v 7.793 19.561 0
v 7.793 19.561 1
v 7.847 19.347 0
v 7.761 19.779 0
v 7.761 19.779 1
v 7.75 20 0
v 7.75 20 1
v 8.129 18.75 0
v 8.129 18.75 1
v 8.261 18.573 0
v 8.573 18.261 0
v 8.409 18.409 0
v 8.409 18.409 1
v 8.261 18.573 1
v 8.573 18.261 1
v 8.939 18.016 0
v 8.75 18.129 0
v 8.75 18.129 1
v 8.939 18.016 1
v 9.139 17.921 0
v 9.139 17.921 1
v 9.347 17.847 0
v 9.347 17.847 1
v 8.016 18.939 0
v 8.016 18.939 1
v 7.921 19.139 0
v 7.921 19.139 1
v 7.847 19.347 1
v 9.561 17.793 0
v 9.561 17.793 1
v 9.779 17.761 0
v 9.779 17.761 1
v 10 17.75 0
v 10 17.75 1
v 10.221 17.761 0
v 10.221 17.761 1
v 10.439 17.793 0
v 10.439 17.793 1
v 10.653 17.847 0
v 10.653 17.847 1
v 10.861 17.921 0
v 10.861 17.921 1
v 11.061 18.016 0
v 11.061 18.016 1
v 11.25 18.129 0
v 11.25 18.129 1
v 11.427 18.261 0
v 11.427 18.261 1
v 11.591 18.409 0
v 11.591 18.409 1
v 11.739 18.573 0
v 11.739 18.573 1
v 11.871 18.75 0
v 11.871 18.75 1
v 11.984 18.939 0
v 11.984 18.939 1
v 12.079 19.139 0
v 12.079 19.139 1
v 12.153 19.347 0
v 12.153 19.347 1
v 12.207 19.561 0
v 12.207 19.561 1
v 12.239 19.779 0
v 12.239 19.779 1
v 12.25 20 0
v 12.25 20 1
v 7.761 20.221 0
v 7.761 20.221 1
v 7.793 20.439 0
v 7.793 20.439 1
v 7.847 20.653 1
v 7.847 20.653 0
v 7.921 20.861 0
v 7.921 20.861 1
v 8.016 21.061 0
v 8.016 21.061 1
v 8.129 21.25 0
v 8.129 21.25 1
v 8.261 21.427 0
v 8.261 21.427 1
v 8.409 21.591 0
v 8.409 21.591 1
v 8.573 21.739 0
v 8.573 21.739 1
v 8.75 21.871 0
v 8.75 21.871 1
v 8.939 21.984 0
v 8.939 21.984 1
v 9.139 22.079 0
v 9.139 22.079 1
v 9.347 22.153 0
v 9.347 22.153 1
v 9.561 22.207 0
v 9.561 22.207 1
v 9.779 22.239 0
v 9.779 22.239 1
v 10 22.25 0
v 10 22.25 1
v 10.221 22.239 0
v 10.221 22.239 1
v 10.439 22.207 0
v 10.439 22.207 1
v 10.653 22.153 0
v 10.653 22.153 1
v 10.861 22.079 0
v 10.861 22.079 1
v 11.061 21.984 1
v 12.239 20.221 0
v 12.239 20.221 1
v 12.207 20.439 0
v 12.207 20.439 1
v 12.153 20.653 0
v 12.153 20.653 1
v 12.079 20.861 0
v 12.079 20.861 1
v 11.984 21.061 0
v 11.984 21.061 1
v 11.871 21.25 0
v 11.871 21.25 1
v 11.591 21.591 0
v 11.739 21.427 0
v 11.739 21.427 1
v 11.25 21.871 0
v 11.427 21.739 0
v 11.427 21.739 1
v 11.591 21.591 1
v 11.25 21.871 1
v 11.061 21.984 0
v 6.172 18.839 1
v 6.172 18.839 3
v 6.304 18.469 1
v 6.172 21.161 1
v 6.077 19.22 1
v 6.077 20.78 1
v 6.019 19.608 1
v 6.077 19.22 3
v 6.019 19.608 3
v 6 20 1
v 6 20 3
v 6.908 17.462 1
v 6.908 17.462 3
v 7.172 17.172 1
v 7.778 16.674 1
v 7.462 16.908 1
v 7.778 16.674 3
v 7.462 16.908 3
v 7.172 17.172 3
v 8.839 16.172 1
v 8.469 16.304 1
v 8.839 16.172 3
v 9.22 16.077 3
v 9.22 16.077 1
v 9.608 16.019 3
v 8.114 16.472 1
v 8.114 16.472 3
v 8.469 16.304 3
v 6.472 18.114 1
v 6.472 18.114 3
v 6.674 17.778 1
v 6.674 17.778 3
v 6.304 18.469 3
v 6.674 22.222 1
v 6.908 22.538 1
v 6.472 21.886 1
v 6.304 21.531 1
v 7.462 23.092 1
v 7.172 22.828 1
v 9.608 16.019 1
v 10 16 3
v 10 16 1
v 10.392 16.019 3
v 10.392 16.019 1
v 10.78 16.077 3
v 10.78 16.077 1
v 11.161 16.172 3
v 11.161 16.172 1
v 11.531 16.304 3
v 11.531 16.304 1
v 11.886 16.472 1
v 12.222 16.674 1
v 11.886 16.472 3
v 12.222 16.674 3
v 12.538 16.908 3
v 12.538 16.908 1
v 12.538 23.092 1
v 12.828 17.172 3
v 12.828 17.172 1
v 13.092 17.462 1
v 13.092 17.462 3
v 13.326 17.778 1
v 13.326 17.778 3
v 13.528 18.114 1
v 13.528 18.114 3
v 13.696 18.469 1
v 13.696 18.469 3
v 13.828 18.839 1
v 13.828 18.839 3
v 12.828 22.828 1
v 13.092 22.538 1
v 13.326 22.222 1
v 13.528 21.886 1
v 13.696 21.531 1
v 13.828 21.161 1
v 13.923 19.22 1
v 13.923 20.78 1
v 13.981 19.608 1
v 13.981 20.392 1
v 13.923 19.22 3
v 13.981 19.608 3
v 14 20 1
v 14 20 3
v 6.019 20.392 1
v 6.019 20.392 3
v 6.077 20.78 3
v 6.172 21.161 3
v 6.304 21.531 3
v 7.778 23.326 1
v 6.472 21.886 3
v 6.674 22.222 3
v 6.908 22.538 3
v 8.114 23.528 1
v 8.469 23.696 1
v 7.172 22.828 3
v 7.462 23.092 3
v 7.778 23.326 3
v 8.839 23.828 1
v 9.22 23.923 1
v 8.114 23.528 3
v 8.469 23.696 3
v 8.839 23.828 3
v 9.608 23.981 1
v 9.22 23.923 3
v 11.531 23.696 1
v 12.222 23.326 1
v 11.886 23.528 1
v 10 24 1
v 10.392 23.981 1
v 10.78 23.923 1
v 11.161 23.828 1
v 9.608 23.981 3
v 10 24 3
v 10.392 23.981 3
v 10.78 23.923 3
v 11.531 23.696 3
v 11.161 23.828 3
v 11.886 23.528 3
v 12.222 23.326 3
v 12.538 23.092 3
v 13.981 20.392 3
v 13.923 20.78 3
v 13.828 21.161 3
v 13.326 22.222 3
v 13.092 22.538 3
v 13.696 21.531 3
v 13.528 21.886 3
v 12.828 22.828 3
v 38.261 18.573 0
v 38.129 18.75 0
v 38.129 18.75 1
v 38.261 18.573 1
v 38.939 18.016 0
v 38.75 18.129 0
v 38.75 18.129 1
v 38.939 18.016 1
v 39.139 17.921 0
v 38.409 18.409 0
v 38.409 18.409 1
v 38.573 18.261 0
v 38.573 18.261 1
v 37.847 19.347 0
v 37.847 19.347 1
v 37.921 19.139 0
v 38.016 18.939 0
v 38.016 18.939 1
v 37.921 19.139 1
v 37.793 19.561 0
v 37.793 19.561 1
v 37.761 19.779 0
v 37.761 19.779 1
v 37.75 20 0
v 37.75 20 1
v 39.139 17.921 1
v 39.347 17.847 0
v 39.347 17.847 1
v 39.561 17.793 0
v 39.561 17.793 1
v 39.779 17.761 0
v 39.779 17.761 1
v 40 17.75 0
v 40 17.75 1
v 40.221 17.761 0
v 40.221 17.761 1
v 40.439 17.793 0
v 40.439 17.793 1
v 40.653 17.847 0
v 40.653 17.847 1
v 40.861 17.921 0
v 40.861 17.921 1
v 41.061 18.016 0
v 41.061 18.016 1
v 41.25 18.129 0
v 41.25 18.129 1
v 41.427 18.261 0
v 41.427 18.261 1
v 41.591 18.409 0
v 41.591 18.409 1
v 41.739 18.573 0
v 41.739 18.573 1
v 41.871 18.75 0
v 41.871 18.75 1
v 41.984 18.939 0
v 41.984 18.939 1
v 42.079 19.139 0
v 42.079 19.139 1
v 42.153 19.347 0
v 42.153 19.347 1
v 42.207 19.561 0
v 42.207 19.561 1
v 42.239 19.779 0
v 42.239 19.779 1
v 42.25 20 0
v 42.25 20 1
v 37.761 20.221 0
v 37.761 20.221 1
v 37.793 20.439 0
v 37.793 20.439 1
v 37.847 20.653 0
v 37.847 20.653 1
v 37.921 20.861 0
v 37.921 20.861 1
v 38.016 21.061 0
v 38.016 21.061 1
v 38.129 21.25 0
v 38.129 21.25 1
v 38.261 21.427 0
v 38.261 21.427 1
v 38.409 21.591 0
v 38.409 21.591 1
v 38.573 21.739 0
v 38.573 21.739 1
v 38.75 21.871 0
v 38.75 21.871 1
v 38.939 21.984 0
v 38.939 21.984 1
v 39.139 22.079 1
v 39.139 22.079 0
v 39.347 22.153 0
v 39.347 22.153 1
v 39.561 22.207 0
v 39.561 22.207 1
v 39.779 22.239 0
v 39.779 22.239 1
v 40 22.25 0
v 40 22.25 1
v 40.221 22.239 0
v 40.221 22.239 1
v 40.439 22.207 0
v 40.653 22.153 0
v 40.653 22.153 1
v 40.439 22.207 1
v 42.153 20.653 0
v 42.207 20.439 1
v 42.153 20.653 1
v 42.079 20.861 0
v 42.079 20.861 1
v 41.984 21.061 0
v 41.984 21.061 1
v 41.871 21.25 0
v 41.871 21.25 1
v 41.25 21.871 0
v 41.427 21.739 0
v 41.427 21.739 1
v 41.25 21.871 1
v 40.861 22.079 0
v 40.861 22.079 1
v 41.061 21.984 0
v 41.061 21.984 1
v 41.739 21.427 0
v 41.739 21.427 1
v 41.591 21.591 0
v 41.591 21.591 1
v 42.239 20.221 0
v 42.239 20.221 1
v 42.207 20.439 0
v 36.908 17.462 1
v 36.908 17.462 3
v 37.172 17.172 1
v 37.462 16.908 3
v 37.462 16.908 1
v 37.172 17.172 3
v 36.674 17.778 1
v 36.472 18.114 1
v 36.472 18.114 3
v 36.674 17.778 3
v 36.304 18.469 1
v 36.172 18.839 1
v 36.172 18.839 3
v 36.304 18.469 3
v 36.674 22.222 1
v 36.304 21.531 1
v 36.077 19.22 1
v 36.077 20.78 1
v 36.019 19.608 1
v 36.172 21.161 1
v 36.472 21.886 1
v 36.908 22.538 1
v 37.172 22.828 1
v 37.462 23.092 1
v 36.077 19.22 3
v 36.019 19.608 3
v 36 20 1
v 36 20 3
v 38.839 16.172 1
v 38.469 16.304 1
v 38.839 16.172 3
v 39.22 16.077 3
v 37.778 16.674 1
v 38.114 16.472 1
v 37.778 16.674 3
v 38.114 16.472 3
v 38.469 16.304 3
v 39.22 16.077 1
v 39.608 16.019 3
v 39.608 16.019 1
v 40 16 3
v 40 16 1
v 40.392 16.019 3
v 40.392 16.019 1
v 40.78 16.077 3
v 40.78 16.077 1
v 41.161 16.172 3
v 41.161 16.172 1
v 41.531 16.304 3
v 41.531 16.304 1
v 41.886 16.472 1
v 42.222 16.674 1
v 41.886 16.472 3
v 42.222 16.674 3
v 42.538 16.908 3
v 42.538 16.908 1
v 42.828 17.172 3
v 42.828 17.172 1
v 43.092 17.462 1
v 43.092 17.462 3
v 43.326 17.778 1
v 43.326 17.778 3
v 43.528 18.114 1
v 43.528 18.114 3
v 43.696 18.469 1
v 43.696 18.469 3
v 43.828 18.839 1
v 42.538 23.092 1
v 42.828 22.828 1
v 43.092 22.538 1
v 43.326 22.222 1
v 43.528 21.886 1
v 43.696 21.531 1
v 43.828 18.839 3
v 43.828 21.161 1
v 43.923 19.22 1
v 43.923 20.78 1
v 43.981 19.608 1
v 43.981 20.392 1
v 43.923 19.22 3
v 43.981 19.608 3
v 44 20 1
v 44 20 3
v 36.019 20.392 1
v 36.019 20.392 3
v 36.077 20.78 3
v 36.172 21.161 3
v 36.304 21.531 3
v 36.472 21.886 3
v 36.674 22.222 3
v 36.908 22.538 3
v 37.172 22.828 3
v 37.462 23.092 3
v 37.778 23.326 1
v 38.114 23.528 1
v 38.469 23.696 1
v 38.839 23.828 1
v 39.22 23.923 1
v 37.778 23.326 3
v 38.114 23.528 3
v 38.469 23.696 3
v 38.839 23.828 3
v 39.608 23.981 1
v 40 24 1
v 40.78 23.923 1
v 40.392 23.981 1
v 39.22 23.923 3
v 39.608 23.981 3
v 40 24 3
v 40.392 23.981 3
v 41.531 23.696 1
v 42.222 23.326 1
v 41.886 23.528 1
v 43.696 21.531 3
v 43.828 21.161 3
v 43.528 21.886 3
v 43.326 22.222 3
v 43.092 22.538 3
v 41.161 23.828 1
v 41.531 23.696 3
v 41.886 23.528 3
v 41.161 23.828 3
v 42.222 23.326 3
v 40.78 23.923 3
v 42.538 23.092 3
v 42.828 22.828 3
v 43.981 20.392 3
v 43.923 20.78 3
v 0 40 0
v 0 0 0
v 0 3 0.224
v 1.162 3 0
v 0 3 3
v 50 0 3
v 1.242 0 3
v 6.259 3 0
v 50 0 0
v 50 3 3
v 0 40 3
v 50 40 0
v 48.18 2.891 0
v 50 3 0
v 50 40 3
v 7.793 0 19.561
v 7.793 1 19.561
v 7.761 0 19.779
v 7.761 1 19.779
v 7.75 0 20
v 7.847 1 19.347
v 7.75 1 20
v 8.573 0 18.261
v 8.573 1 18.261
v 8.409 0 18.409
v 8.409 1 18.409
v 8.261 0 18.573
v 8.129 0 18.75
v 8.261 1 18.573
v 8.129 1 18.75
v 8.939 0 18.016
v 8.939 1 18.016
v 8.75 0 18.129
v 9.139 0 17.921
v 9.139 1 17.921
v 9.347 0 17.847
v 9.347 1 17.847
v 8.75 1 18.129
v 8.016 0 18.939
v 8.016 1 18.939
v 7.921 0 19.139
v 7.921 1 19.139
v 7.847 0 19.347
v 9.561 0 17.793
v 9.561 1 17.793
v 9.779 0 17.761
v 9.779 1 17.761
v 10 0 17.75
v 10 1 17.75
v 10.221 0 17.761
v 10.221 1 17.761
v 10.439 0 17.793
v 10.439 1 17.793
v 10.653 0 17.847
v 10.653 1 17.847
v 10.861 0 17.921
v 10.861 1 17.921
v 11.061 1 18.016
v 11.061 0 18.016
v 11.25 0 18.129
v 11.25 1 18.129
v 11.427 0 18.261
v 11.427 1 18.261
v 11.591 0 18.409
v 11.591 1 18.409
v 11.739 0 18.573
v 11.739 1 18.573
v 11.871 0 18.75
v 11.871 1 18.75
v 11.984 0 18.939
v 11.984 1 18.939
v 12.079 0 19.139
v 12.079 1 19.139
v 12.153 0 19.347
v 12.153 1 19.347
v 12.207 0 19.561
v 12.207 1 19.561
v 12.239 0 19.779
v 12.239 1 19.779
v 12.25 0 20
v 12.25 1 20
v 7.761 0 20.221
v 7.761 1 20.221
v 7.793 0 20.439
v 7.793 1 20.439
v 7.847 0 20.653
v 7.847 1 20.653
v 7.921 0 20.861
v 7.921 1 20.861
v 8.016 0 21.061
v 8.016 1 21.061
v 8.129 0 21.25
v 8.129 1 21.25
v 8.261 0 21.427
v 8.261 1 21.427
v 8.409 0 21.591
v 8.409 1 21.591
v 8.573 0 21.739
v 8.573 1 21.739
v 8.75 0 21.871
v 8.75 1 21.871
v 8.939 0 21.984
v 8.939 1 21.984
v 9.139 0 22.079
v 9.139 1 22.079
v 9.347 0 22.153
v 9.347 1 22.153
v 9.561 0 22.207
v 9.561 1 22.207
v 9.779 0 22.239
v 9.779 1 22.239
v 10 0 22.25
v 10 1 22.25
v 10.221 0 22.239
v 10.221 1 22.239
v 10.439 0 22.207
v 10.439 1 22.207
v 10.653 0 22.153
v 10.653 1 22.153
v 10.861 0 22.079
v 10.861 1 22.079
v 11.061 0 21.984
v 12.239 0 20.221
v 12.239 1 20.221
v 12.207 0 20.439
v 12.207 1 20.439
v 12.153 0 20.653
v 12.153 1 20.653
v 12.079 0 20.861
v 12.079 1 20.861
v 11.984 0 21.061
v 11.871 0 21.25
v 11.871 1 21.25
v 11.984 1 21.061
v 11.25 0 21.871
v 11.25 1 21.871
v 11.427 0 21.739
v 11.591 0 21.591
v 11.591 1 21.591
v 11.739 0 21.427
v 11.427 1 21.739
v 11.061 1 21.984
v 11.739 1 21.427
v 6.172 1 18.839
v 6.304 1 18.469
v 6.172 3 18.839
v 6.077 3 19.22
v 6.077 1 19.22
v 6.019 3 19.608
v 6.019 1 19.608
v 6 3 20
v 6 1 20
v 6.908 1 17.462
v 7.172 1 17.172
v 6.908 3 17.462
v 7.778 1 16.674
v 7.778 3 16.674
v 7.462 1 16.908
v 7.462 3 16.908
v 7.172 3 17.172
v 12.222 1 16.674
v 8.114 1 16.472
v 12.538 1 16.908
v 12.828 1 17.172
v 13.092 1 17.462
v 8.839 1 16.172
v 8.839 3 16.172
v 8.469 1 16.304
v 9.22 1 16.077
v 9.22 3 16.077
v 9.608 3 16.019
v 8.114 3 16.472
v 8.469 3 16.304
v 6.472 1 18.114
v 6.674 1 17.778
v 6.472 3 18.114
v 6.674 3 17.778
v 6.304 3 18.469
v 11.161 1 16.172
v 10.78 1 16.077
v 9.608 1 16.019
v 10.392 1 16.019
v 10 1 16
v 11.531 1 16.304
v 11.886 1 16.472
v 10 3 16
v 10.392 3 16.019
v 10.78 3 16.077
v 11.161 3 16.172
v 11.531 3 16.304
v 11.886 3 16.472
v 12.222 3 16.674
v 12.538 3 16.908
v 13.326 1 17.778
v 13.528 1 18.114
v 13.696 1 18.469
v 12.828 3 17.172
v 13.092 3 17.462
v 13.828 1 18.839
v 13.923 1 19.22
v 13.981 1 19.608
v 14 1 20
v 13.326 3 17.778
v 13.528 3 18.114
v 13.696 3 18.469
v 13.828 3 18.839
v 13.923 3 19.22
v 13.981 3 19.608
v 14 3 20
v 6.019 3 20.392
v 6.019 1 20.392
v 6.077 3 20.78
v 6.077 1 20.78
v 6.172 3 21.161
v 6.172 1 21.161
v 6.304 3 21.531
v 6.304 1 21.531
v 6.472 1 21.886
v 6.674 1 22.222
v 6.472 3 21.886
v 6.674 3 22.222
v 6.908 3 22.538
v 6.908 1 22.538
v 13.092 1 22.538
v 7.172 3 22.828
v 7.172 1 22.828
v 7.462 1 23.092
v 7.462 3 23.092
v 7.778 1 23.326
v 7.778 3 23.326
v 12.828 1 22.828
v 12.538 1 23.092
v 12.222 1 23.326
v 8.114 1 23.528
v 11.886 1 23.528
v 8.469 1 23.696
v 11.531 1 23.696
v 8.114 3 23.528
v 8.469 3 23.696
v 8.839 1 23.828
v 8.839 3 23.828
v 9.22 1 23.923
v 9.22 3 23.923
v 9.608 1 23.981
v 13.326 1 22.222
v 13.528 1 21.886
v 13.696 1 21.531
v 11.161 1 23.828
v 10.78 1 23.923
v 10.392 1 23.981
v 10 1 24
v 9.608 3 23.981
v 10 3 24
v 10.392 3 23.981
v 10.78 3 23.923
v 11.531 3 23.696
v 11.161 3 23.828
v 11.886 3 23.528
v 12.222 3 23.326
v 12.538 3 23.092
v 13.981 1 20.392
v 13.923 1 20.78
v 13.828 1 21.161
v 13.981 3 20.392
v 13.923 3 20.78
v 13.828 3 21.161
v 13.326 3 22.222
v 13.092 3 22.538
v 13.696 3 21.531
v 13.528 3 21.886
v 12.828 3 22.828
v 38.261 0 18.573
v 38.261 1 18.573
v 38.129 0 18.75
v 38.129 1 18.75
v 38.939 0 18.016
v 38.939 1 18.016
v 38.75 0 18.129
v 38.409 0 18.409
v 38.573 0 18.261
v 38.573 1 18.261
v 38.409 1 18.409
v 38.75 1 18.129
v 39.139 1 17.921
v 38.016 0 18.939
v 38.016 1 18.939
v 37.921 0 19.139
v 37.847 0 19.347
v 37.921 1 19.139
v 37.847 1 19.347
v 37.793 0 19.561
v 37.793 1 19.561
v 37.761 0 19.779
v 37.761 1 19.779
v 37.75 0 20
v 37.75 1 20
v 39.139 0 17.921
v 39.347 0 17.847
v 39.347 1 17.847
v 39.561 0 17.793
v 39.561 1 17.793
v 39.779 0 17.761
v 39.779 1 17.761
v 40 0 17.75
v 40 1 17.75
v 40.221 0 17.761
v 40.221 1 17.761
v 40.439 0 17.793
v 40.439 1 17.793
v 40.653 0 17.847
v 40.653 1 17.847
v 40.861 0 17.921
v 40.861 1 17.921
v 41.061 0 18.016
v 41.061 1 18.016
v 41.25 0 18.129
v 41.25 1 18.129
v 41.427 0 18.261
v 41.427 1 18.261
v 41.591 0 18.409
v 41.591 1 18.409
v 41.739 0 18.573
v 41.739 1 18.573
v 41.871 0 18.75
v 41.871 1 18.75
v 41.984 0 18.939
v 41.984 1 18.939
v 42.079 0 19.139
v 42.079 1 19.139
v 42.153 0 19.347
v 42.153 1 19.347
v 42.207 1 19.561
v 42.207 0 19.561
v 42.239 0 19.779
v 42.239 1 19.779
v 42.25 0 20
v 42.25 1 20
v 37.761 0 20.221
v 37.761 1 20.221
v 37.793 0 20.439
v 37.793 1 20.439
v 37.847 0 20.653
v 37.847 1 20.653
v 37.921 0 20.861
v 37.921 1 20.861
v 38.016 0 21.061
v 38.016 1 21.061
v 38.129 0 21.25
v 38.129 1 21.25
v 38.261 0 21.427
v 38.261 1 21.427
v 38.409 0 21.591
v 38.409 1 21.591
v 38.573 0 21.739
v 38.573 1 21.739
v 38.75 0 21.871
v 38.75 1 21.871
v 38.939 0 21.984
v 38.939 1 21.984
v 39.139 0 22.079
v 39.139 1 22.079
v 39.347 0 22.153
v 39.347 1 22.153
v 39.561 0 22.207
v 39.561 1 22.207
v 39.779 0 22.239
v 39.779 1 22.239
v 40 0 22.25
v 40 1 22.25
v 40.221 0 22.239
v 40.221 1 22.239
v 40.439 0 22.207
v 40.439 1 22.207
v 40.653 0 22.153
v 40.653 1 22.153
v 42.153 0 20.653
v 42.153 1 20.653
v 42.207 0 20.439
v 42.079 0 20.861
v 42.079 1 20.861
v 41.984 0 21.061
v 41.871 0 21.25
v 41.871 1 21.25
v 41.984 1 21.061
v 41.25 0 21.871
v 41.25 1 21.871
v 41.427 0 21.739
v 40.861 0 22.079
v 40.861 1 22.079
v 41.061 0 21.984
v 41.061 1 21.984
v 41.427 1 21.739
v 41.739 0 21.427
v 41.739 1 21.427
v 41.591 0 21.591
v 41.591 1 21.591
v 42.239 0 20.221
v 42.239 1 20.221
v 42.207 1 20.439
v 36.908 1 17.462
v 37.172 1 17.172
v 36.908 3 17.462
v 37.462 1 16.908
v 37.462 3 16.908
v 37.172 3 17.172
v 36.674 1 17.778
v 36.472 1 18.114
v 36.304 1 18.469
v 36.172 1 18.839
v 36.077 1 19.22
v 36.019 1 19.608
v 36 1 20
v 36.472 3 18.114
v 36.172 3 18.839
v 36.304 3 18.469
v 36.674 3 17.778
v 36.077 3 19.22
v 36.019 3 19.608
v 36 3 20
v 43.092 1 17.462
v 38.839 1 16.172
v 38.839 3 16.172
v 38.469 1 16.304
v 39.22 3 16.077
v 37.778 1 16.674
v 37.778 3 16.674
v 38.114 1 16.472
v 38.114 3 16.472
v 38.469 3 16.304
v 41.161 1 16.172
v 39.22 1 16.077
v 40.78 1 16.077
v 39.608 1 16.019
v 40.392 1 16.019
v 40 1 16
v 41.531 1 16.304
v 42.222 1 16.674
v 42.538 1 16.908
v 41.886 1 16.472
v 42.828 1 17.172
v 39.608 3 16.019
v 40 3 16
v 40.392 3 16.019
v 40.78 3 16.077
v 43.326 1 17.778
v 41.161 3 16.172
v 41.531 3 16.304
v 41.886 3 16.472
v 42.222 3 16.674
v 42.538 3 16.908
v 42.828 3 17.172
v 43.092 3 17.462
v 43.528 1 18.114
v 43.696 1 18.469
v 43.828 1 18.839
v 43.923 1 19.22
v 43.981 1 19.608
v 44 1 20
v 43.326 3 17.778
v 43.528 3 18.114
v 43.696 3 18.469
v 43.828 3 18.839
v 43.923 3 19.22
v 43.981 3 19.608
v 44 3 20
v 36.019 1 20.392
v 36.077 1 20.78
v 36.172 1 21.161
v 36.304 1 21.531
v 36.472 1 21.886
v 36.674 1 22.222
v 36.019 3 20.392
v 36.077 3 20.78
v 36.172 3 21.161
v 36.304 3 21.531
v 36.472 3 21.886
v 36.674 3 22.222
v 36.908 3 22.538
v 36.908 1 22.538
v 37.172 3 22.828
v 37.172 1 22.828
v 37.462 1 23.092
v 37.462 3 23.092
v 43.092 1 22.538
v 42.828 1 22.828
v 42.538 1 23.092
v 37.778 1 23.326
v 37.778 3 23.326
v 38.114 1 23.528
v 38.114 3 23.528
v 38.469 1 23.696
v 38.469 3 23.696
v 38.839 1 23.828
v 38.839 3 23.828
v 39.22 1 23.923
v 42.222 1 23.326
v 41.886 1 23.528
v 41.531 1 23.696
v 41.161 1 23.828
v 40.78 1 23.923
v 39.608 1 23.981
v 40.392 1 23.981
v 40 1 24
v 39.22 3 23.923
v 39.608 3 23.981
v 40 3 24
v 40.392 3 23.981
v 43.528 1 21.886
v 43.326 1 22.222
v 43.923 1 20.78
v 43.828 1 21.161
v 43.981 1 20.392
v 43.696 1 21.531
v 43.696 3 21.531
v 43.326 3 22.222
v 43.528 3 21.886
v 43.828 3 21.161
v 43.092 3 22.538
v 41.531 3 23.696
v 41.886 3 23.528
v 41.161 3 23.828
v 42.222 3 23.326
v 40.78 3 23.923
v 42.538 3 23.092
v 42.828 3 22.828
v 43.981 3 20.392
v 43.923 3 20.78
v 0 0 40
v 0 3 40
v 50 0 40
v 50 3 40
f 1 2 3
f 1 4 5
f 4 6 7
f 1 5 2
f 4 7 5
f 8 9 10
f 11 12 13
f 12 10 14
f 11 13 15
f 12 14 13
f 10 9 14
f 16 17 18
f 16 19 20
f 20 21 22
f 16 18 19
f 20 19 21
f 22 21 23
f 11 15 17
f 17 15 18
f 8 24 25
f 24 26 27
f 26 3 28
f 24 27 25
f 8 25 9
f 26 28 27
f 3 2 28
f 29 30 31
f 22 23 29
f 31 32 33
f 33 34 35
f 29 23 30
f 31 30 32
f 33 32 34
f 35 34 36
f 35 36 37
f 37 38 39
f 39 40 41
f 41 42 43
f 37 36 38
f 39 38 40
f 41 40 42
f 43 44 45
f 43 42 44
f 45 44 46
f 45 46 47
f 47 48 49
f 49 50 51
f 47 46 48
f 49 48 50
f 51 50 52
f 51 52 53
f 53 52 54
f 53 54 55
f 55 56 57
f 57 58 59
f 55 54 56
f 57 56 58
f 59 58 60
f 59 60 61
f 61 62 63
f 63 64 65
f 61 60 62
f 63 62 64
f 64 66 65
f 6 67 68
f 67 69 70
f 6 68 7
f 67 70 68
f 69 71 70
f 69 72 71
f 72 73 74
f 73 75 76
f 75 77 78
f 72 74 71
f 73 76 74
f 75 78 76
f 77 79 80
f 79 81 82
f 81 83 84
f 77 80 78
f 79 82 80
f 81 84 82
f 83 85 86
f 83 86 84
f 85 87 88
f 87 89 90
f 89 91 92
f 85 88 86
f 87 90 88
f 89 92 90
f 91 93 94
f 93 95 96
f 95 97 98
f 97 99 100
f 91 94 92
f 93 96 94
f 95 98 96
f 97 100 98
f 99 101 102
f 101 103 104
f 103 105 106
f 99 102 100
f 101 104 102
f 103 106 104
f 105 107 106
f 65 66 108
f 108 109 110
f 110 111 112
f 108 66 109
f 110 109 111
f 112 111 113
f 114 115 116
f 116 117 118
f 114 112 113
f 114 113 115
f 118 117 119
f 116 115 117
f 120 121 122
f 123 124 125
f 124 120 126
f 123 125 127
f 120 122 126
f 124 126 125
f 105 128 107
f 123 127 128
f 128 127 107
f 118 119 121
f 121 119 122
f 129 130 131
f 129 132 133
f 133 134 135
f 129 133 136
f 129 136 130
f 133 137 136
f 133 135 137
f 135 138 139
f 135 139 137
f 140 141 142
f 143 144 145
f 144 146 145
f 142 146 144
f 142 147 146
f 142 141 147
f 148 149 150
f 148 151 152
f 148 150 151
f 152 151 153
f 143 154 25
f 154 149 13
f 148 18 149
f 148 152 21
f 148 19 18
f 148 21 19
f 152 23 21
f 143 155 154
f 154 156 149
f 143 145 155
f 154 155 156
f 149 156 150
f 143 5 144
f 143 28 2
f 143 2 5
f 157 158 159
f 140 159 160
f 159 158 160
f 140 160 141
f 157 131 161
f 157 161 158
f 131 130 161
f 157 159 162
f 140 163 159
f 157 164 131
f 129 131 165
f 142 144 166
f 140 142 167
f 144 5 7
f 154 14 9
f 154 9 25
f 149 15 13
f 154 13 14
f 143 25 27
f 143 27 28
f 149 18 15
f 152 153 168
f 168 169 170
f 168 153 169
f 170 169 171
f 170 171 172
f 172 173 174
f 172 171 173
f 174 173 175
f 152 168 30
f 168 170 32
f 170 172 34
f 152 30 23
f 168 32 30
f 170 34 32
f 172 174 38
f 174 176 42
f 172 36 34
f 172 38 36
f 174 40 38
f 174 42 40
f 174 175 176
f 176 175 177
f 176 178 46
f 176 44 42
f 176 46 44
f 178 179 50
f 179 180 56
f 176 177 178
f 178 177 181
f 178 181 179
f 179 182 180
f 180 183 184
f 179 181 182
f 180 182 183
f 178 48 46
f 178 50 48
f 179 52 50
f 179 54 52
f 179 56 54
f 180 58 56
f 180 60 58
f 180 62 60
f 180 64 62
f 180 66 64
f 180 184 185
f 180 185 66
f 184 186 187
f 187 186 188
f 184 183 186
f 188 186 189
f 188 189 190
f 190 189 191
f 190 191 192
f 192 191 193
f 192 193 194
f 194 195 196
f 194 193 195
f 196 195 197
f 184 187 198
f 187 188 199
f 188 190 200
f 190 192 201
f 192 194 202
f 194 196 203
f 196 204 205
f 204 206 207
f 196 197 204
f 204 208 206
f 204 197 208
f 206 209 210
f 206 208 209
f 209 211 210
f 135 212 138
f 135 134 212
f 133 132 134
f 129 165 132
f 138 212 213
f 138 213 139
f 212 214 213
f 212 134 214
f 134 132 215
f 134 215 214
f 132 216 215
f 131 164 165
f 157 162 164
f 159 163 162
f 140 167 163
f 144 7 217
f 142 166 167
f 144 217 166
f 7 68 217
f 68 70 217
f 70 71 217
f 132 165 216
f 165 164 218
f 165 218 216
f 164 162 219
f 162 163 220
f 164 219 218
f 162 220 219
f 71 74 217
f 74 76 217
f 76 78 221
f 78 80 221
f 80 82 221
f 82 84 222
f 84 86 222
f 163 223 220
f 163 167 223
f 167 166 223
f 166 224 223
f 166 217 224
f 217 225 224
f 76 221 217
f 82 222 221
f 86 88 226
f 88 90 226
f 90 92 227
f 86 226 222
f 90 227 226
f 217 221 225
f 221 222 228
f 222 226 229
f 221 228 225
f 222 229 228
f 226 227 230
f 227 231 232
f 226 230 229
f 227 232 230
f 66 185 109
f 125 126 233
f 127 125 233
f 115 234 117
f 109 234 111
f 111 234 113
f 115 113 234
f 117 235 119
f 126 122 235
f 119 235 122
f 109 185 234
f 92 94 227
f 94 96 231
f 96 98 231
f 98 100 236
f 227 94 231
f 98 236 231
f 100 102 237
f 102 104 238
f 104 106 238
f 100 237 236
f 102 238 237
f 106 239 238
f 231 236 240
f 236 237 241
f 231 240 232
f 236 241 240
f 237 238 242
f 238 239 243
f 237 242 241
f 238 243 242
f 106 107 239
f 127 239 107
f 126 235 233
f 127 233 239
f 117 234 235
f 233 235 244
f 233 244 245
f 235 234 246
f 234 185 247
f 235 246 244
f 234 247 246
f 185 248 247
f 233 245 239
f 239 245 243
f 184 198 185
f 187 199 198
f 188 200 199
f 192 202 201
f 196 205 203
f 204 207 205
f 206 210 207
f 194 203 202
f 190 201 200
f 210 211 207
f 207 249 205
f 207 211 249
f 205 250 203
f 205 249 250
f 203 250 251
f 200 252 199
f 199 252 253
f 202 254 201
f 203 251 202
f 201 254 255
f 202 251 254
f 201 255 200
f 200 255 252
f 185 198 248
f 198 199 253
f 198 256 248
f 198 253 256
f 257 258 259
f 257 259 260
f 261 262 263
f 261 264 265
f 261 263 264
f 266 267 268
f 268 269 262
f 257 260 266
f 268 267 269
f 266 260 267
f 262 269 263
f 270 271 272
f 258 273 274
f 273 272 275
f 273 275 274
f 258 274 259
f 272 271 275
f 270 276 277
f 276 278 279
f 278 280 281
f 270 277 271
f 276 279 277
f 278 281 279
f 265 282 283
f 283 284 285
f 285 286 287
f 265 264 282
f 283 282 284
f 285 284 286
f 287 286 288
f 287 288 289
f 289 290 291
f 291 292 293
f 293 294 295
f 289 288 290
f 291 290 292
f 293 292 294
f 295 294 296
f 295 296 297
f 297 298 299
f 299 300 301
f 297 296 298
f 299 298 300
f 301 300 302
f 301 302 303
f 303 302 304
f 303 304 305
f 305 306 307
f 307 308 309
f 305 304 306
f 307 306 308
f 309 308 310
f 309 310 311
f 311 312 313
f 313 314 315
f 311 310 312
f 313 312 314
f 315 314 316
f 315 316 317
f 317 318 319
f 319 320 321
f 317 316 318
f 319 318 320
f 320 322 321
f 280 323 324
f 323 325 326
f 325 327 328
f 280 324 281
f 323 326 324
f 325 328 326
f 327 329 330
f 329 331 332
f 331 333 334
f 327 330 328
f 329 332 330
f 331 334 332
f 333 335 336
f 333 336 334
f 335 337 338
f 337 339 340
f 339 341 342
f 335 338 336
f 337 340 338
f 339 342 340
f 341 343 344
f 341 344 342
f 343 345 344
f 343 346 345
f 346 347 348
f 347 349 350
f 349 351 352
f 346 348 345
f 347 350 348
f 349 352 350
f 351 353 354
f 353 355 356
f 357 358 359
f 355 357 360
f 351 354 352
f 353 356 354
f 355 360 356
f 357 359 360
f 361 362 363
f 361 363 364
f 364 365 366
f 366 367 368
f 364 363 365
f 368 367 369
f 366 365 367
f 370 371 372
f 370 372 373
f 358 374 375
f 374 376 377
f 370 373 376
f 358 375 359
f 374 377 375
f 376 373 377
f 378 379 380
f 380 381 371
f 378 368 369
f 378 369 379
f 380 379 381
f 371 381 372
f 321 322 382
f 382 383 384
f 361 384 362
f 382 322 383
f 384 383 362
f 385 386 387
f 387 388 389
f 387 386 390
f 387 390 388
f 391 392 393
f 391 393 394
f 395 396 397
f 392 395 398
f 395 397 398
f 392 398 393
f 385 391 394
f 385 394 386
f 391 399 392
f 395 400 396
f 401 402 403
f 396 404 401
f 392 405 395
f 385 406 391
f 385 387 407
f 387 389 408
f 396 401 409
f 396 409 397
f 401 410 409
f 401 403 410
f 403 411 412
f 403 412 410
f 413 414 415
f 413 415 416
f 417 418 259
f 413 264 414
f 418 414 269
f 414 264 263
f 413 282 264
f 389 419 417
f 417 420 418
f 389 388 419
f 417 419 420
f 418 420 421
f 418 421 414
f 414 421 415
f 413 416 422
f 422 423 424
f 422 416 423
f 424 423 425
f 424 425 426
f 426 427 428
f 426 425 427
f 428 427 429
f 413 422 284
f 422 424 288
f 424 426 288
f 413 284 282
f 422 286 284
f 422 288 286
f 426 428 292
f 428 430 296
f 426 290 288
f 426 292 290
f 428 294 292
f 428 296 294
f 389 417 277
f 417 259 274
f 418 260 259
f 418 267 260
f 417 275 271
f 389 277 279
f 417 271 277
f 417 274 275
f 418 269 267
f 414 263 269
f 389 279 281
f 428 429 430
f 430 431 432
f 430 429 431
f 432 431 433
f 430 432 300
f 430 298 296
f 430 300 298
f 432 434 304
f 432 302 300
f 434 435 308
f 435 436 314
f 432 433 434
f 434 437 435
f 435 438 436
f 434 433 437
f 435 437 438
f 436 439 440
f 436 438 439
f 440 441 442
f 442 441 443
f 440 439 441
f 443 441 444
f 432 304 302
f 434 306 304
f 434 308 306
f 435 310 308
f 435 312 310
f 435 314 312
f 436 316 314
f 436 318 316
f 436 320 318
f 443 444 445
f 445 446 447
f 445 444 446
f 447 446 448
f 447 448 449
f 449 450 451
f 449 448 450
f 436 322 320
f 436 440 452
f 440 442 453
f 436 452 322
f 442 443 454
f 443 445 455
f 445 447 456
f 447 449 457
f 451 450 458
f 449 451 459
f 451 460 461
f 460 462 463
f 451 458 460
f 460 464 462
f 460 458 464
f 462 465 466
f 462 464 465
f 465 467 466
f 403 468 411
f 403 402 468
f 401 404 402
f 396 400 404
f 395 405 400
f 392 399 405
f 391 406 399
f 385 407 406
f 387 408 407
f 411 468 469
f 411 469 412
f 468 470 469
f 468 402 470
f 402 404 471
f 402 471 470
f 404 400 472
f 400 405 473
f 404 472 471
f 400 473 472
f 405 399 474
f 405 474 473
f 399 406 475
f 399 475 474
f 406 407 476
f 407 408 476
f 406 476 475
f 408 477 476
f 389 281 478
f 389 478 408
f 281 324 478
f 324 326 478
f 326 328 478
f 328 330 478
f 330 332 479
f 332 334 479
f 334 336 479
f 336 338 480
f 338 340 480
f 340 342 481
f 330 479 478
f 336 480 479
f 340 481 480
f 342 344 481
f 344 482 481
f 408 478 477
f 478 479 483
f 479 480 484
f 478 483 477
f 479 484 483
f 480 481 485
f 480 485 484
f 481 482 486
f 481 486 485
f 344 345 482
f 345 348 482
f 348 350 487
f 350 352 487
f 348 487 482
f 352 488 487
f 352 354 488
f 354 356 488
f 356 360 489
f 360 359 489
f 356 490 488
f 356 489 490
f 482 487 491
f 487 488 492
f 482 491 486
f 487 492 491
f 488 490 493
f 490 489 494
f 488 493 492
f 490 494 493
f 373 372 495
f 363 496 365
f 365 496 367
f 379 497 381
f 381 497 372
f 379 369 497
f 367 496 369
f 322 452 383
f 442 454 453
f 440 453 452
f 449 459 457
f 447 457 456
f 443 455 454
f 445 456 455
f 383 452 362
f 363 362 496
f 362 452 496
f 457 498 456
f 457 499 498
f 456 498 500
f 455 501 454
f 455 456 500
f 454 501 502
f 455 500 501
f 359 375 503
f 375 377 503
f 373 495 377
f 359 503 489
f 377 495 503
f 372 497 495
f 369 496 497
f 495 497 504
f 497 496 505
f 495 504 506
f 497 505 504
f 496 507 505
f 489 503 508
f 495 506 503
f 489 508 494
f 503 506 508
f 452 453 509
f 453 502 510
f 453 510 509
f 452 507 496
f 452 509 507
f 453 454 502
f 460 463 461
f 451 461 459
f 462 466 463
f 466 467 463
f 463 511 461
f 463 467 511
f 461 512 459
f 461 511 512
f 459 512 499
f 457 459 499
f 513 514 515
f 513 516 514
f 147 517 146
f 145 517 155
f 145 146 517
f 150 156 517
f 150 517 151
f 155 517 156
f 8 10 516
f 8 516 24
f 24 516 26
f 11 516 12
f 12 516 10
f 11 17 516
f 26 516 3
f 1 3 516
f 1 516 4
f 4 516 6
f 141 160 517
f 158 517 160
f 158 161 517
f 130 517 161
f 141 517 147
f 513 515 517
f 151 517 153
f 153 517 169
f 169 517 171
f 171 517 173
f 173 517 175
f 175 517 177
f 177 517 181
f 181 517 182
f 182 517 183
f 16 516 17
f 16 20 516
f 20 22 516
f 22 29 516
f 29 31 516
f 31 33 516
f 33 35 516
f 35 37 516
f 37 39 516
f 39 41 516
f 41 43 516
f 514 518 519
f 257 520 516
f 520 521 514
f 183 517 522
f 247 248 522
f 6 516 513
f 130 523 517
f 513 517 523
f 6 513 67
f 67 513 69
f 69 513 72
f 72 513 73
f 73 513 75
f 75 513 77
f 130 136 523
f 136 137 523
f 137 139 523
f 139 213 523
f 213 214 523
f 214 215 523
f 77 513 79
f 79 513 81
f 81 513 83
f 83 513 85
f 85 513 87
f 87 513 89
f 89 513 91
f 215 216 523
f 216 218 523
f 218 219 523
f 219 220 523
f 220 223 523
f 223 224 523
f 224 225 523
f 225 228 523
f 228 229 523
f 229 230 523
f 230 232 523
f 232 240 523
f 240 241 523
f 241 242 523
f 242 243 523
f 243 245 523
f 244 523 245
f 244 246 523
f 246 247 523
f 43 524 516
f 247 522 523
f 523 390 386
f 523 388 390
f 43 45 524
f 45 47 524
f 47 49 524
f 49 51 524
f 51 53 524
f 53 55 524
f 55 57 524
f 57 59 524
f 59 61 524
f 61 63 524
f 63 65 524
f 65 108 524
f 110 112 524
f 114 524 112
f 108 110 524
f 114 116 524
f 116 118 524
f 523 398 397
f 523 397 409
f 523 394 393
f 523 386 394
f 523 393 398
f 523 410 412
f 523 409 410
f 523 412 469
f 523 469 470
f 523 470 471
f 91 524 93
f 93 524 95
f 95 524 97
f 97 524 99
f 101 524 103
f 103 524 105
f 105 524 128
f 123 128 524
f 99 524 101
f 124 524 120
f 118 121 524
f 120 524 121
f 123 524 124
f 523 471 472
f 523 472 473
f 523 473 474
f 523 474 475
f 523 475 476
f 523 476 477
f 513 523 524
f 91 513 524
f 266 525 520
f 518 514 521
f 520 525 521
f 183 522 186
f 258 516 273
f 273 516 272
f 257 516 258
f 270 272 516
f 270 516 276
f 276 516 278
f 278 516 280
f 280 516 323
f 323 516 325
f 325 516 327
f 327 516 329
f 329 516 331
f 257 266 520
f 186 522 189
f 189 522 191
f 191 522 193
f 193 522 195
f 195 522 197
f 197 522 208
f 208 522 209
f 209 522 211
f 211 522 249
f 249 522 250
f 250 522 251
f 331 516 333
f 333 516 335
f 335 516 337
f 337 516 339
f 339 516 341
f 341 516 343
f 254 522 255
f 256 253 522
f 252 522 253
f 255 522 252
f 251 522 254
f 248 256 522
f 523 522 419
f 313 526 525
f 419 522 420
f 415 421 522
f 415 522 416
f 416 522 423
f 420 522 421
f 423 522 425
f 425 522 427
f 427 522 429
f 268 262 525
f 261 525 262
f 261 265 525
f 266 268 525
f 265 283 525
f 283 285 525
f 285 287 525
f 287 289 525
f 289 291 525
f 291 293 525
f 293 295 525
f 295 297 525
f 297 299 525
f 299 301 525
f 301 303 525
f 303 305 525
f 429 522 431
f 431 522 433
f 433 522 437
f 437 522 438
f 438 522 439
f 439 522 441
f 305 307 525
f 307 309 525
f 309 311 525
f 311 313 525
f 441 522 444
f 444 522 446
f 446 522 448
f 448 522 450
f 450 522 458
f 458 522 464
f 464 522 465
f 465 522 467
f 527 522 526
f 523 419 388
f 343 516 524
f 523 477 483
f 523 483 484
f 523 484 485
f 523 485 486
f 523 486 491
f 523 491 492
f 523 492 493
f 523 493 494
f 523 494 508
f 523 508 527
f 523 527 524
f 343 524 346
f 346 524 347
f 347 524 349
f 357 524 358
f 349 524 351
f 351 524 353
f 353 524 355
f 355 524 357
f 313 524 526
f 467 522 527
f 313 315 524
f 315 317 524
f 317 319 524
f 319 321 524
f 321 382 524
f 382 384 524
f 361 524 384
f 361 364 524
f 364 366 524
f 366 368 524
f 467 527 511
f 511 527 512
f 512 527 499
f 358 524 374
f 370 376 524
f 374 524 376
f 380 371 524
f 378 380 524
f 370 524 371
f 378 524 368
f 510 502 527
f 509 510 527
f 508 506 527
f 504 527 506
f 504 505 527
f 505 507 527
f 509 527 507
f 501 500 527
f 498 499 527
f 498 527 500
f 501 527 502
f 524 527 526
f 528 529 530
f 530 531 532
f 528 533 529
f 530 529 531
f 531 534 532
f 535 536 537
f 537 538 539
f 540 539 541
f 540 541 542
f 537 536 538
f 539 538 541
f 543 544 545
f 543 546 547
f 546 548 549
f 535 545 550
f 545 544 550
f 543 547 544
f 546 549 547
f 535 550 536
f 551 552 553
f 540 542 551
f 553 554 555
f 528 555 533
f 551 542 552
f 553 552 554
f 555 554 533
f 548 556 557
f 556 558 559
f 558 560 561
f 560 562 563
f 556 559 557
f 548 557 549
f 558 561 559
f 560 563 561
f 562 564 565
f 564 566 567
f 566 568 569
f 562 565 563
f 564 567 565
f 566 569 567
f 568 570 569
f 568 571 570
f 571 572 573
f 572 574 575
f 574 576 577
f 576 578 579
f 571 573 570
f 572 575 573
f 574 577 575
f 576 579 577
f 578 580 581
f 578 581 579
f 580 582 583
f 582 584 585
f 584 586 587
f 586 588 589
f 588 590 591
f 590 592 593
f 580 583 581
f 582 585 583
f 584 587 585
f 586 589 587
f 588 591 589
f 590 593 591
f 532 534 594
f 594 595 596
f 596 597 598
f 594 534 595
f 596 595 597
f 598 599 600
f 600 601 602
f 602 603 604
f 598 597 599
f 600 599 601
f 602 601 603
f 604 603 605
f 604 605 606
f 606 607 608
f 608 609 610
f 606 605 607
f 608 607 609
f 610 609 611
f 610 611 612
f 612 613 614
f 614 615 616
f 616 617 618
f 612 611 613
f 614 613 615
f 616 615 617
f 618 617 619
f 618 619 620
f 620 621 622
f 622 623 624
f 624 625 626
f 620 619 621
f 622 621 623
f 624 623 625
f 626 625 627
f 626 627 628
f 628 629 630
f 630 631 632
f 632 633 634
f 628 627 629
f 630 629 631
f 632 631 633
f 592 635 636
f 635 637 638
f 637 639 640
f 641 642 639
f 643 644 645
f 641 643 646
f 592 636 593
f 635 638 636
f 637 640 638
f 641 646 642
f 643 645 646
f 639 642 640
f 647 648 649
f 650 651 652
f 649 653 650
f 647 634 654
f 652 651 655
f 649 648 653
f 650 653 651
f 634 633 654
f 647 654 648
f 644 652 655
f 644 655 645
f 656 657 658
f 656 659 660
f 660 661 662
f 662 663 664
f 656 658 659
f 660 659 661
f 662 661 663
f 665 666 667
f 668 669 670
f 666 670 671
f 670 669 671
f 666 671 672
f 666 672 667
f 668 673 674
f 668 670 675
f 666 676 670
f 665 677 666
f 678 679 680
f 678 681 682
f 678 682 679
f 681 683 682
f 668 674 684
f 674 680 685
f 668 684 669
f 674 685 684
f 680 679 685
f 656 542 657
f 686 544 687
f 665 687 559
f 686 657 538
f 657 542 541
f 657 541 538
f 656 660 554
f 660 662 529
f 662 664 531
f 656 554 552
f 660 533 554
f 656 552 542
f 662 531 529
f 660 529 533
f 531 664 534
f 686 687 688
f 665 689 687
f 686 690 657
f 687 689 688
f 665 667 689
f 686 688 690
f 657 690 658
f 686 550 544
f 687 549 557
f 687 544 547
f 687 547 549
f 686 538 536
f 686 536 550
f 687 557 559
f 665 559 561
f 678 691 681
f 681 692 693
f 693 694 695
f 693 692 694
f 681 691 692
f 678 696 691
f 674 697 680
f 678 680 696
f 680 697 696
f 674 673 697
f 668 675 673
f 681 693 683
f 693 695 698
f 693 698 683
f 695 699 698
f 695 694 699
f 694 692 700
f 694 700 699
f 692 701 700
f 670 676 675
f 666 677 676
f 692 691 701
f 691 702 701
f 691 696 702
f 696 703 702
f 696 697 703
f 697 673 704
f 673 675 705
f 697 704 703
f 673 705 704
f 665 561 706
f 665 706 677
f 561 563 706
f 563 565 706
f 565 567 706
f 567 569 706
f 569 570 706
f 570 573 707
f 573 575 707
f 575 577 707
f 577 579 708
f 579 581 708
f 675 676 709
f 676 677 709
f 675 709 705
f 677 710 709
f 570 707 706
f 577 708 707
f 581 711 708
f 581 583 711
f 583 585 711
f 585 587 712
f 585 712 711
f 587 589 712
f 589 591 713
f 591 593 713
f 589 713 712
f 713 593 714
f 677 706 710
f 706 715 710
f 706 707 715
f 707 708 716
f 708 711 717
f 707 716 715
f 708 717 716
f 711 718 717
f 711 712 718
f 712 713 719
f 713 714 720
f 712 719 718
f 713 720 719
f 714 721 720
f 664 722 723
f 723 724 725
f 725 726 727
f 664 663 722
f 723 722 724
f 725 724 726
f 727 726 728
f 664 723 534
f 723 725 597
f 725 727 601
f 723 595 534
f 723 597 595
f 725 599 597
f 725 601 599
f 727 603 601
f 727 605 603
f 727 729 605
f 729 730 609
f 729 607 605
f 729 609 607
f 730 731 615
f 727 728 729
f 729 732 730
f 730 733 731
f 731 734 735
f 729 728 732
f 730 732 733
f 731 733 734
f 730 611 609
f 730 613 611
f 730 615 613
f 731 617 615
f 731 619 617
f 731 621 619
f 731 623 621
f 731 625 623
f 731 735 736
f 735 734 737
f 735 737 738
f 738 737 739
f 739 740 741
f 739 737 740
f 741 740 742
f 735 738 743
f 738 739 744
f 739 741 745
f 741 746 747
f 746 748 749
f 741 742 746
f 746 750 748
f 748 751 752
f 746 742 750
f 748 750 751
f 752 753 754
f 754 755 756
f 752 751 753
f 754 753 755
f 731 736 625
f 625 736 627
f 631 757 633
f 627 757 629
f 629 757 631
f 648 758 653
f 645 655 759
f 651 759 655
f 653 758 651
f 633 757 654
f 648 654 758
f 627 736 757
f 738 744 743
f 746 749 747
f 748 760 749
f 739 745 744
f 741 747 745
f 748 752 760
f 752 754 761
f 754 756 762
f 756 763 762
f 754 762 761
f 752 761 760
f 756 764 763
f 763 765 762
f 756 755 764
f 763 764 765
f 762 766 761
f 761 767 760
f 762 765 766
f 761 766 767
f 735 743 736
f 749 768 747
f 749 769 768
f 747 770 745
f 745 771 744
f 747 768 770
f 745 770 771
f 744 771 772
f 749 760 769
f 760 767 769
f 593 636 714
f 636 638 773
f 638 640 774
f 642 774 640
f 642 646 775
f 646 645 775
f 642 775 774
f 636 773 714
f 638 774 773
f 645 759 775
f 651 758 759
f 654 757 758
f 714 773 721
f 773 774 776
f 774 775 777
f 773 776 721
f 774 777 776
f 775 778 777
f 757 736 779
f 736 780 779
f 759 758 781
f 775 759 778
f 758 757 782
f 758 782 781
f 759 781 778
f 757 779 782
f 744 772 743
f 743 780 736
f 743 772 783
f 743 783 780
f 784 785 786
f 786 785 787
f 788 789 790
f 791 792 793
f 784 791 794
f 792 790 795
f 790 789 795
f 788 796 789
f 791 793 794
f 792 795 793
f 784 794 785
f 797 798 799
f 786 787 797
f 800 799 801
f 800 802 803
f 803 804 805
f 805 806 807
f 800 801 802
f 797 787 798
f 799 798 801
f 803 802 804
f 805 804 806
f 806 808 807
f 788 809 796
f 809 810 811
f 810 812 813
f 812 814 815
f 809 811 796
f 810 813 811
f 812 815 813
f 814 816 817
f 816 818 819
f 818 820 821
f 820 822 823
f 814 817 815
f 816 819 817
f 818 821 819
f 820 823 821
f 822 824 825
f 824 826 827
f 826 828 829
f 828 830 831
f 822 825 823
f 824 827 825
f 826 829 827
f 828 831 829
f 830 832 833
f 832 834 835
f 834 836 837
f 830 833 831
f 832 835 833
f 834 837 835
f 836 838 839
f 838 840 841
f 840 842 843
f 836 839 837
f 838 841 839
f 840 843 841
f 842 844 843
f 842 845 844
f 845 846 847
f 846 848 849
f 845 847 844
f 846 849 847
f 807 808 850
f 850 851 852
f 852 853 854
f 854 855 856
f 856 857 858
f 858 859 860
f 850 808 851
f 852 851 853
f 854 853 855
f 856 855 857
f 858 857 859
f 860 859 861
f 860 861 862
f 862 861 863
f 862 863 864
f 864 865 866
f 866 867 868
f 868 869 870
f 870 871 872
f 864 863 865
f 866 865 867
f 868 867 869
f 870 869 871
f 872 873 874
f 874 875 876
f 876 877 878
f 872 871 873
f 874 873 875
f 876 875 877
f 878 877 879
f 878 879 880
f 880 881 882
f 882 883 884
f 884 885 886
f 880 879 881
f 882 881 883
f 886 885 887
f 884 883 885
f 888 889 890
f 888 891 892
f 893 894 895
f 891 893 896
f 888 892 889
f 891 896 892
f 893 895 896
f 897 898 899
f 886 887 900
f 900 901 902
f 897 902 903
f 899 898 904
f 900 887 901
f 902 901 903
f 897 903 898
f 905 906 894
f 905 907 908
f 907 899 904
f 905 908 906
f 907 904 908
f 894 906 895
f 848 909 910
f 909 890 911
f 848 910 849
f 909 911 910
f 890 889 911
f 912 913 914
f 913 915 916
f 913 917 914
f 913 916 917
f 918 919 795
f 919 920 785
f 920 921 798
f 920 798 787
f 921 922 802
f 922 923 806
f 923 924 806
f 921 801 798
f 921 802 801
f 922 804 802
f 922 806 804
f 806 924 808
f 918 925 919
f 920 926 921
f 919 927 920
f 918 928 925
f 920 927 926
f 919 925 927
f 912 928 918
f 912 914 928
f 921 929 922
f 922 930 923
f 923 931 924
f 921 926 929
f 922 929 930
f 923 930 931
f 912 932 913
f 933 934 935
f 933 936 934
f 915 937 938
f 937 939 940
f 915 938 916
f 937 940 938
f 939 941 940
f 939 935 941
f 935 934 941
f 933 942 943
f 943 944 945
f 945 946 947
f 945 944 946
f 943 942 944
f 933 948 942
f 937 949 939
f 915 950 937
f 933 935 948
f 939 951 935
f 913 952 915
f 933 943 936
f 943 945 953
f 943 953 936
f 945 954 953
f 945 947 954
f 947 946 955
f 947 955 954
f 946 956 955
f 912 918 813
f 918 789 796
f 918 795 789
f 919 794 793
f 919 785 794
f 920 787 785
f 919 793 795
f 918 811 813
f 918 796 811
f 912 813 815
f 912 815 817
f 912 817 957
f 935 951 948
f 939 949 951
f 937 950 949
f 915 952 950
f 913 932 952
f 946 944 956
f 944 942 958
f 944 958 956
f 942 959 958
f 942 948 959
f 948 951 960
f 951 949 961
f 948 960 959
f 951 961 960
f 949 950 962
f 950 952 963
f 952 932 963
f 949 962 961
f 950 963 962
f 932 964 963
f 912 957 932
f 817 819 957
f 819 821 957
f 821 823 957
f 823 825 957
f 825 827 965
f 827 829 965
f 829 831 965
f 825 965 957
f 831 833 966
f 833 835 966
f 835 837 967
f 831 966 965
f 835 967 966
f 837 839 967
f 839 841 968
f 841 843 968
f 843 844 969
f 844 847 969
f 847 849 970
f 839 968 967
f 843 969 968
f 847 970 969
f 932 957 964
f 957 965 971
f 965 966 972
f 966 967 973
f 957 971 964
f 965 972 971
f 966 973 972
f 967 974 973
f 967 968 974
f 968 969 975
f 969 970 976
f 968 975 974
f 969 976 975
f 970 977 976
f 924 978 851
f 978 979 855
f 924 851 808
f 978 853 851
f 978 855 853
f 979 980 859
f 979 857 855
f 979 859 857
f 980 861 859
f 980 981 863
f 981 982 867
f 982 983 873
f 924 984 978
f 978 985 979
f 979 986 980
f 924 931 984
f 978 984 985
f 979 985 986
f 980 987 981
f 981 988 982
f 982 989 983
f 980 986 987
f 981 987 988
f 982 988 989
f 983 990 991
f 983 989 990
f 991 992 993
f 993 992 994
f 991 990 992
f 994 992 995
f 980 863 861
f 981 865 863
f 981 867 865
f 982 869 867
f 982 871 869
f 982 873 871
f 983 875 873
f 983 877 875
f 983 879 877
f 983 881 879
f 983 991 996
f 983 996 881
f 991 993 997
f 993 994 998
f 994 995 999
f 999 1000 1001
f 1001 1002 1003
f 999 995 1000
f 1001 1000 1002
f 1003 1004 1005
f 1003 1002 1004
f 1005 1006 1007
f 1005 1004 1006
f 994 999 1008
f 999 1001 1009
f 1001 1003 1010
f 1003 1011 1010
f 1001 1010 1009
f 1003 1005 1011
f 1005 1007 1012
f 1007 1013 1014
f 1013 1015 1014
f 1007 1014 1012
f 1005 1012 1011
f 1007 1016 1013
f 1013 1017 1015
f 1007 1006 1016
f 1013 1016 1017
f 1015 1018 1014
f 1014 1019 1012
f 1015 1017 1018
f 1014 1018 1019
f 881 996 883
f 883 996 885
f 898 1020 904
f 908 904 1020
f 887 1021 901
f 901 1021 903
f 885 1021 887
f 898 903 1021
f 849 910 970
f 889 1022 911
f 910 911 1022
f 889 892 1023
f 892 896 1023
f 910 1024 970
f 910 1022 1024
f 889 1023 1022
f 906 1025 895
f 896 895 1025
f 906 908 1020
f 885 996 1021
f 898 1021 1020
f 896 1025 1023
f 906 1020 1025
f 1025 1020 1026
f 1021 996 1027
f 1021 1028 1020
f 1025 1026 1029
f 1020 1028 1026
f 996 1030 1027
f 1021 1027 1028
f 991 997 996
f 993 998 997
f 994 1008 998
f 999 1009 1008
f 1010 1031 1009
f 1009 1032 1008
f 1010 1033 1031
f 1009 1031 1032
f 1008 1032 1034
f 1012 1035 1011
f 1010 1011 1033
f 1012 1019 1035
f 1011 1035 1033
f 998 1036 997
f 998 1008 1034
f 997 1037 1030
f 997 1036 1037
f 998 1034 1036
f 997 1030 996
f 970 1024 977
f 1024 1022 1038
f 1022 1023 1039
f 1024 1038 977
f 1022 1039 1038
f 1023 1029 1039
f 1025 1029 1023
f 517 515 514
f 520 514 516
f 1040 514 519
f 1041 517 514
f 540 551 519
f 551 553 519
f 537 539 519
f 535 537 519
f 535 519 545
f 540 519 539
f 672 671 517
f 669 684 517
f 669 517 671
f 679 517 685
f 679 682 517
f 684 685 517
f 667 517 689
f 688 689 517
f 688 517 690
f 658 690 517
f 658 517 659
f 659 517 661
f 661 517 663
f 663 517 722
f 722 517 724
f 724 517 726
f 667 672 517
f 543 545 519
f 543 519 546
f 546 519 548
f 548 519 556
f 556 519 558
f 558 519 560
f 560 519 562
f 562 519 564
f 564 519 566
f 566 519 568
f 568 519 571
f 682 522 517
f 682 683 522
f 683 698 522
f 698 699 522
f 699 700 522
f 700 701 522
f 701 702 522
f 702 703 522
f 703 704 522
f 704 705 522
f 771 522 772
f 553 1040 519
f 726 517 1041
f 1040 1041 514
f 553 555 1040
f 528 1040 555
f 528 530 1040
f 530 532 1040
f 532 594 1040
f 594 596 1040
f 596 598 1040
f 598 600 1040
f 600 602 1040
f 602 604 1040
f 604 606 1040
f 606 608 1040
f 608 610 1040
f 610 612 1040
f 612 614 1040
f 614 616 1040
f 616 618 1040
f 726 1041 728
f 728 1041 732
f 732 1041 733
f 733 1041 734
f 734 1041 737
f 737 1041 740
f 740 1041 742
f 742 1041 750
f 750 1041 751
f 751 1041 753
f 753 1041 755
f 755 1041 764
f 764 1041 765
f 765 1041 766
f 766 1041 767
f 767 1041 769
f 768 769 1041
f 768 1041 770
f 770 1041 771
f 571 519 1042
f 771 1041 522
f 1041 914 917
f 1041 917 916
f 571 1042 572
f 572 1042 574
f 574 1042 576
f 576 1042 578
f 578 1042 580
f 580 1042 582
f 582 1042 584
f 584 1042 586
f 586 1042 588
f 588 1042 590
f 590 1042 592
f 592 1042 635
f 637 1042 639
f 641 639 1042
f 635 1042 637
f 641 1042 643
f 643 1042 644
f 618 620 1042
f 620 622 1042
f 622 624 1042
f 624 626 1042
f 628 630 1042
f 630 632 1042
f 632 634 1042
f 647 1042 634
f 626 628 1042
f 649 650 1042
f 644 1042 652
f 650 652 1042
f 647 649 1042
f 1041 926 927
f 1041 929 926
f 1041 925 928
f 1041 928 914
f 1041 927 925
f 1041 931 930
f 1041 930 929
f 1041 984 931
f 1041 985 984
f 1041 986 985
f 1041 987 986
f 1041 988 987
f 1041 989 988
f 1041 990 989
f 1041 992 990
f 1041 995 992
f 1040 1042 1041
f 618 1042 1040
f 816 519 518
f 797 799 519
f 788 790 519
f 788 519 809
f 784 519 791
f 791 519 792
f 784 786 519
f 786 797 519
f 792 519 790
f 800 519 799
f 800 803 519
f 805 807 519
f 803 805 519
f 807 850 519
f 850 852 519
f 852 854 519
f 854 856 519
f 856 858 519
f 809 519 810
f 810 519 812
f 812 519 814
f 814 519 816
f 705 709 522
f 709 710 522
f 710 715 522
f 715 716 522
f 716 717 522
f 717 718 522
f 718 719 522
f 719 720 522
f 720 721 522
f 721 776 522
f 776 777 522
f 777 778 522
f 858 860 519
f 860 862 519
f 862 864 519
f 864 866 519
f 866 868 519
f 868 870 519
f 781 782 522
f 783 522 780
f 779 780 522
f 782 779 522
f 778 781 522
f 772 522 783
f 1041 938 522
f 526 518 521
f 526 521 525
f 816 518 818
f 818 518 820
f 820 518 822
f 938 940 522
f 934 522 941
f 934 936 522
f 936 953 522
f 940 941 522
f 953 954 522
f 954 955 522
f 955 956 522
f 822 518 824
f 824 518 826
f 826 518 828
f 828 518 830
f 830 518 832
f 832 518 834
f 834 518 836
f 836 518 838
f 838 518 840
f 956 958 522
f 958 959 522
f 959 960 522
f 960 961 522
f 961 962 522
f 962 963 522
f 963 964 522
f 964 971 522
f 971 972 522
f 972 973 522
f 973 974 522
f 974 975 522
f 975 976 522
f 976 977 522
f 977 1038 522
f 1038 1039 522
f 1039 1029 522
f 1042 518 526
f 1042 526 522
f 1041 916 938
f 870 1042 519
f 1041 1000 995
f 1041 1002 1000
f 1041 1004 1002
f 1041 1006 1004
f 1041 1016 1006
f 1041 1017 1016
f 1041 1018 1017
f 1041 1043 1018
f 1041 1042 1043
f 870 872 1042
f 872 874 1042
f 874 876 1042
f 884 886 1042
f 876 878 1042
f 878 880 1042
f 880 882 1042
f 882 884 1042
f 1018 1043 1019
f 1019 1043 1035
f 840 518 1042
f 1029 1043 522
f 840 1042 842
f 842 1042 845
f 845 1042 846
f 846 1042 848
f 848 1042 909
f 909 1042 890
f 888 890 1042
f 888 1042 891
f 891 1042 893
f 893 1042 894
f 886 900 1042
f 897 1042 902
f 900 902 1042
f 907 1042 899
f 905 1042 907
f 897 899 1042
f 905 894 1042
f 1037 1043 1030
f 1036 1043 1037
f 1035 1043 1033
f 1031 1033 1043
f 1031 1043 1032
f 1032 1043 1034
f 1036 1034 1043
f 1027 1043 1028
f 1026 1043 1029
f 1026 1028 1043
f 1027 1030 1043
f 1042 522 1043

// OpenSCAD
$fn = 64;

thickness = 3;
flange_width = 50;
flange_depth = 40;
flange_height = 40;

through_diameter = 4.5;
countersink_diameter = 8;
countersink_depth = 2;
clearance = 1;

hole_positions = [10, flange_width - 10];

module horizontal_flange() {
    difference() {
        cube([flange_width, flange_depth, thickness]);
        for (x = hole_positions) {
            translate([x, flange_depth / 2, -clearance])
                cylinder(h = thickness + 2 * clearance, r = through_diameter / 2);

            translate([x, flange_depth / 2, thickness - countersink_depth])
                cylinder(h = countersink_depth, r = countersink_diameter / 2);
        }
    }
}

module vertical_flange() {
    difference() {
        cube([flange_width, thickness, flange_height]);
        for (x = hole_positions) {
            translate([x, thickness / 2, flange_height / 2])
                rotate([-90, 0, 0])
                    cylinder(h = thickness + 2 * clearance, r = through_diameter / 2, center = true);

            translate([x, thickness - countersink_depth, flange_height / 2])
                rotate([-90, 0, 0])
                    cylinder(h = countersink_depth, r = countersink_diameter / 2);
        }
    }
}

union() {
    horizontal_flange();
    vertical_flange();
}
